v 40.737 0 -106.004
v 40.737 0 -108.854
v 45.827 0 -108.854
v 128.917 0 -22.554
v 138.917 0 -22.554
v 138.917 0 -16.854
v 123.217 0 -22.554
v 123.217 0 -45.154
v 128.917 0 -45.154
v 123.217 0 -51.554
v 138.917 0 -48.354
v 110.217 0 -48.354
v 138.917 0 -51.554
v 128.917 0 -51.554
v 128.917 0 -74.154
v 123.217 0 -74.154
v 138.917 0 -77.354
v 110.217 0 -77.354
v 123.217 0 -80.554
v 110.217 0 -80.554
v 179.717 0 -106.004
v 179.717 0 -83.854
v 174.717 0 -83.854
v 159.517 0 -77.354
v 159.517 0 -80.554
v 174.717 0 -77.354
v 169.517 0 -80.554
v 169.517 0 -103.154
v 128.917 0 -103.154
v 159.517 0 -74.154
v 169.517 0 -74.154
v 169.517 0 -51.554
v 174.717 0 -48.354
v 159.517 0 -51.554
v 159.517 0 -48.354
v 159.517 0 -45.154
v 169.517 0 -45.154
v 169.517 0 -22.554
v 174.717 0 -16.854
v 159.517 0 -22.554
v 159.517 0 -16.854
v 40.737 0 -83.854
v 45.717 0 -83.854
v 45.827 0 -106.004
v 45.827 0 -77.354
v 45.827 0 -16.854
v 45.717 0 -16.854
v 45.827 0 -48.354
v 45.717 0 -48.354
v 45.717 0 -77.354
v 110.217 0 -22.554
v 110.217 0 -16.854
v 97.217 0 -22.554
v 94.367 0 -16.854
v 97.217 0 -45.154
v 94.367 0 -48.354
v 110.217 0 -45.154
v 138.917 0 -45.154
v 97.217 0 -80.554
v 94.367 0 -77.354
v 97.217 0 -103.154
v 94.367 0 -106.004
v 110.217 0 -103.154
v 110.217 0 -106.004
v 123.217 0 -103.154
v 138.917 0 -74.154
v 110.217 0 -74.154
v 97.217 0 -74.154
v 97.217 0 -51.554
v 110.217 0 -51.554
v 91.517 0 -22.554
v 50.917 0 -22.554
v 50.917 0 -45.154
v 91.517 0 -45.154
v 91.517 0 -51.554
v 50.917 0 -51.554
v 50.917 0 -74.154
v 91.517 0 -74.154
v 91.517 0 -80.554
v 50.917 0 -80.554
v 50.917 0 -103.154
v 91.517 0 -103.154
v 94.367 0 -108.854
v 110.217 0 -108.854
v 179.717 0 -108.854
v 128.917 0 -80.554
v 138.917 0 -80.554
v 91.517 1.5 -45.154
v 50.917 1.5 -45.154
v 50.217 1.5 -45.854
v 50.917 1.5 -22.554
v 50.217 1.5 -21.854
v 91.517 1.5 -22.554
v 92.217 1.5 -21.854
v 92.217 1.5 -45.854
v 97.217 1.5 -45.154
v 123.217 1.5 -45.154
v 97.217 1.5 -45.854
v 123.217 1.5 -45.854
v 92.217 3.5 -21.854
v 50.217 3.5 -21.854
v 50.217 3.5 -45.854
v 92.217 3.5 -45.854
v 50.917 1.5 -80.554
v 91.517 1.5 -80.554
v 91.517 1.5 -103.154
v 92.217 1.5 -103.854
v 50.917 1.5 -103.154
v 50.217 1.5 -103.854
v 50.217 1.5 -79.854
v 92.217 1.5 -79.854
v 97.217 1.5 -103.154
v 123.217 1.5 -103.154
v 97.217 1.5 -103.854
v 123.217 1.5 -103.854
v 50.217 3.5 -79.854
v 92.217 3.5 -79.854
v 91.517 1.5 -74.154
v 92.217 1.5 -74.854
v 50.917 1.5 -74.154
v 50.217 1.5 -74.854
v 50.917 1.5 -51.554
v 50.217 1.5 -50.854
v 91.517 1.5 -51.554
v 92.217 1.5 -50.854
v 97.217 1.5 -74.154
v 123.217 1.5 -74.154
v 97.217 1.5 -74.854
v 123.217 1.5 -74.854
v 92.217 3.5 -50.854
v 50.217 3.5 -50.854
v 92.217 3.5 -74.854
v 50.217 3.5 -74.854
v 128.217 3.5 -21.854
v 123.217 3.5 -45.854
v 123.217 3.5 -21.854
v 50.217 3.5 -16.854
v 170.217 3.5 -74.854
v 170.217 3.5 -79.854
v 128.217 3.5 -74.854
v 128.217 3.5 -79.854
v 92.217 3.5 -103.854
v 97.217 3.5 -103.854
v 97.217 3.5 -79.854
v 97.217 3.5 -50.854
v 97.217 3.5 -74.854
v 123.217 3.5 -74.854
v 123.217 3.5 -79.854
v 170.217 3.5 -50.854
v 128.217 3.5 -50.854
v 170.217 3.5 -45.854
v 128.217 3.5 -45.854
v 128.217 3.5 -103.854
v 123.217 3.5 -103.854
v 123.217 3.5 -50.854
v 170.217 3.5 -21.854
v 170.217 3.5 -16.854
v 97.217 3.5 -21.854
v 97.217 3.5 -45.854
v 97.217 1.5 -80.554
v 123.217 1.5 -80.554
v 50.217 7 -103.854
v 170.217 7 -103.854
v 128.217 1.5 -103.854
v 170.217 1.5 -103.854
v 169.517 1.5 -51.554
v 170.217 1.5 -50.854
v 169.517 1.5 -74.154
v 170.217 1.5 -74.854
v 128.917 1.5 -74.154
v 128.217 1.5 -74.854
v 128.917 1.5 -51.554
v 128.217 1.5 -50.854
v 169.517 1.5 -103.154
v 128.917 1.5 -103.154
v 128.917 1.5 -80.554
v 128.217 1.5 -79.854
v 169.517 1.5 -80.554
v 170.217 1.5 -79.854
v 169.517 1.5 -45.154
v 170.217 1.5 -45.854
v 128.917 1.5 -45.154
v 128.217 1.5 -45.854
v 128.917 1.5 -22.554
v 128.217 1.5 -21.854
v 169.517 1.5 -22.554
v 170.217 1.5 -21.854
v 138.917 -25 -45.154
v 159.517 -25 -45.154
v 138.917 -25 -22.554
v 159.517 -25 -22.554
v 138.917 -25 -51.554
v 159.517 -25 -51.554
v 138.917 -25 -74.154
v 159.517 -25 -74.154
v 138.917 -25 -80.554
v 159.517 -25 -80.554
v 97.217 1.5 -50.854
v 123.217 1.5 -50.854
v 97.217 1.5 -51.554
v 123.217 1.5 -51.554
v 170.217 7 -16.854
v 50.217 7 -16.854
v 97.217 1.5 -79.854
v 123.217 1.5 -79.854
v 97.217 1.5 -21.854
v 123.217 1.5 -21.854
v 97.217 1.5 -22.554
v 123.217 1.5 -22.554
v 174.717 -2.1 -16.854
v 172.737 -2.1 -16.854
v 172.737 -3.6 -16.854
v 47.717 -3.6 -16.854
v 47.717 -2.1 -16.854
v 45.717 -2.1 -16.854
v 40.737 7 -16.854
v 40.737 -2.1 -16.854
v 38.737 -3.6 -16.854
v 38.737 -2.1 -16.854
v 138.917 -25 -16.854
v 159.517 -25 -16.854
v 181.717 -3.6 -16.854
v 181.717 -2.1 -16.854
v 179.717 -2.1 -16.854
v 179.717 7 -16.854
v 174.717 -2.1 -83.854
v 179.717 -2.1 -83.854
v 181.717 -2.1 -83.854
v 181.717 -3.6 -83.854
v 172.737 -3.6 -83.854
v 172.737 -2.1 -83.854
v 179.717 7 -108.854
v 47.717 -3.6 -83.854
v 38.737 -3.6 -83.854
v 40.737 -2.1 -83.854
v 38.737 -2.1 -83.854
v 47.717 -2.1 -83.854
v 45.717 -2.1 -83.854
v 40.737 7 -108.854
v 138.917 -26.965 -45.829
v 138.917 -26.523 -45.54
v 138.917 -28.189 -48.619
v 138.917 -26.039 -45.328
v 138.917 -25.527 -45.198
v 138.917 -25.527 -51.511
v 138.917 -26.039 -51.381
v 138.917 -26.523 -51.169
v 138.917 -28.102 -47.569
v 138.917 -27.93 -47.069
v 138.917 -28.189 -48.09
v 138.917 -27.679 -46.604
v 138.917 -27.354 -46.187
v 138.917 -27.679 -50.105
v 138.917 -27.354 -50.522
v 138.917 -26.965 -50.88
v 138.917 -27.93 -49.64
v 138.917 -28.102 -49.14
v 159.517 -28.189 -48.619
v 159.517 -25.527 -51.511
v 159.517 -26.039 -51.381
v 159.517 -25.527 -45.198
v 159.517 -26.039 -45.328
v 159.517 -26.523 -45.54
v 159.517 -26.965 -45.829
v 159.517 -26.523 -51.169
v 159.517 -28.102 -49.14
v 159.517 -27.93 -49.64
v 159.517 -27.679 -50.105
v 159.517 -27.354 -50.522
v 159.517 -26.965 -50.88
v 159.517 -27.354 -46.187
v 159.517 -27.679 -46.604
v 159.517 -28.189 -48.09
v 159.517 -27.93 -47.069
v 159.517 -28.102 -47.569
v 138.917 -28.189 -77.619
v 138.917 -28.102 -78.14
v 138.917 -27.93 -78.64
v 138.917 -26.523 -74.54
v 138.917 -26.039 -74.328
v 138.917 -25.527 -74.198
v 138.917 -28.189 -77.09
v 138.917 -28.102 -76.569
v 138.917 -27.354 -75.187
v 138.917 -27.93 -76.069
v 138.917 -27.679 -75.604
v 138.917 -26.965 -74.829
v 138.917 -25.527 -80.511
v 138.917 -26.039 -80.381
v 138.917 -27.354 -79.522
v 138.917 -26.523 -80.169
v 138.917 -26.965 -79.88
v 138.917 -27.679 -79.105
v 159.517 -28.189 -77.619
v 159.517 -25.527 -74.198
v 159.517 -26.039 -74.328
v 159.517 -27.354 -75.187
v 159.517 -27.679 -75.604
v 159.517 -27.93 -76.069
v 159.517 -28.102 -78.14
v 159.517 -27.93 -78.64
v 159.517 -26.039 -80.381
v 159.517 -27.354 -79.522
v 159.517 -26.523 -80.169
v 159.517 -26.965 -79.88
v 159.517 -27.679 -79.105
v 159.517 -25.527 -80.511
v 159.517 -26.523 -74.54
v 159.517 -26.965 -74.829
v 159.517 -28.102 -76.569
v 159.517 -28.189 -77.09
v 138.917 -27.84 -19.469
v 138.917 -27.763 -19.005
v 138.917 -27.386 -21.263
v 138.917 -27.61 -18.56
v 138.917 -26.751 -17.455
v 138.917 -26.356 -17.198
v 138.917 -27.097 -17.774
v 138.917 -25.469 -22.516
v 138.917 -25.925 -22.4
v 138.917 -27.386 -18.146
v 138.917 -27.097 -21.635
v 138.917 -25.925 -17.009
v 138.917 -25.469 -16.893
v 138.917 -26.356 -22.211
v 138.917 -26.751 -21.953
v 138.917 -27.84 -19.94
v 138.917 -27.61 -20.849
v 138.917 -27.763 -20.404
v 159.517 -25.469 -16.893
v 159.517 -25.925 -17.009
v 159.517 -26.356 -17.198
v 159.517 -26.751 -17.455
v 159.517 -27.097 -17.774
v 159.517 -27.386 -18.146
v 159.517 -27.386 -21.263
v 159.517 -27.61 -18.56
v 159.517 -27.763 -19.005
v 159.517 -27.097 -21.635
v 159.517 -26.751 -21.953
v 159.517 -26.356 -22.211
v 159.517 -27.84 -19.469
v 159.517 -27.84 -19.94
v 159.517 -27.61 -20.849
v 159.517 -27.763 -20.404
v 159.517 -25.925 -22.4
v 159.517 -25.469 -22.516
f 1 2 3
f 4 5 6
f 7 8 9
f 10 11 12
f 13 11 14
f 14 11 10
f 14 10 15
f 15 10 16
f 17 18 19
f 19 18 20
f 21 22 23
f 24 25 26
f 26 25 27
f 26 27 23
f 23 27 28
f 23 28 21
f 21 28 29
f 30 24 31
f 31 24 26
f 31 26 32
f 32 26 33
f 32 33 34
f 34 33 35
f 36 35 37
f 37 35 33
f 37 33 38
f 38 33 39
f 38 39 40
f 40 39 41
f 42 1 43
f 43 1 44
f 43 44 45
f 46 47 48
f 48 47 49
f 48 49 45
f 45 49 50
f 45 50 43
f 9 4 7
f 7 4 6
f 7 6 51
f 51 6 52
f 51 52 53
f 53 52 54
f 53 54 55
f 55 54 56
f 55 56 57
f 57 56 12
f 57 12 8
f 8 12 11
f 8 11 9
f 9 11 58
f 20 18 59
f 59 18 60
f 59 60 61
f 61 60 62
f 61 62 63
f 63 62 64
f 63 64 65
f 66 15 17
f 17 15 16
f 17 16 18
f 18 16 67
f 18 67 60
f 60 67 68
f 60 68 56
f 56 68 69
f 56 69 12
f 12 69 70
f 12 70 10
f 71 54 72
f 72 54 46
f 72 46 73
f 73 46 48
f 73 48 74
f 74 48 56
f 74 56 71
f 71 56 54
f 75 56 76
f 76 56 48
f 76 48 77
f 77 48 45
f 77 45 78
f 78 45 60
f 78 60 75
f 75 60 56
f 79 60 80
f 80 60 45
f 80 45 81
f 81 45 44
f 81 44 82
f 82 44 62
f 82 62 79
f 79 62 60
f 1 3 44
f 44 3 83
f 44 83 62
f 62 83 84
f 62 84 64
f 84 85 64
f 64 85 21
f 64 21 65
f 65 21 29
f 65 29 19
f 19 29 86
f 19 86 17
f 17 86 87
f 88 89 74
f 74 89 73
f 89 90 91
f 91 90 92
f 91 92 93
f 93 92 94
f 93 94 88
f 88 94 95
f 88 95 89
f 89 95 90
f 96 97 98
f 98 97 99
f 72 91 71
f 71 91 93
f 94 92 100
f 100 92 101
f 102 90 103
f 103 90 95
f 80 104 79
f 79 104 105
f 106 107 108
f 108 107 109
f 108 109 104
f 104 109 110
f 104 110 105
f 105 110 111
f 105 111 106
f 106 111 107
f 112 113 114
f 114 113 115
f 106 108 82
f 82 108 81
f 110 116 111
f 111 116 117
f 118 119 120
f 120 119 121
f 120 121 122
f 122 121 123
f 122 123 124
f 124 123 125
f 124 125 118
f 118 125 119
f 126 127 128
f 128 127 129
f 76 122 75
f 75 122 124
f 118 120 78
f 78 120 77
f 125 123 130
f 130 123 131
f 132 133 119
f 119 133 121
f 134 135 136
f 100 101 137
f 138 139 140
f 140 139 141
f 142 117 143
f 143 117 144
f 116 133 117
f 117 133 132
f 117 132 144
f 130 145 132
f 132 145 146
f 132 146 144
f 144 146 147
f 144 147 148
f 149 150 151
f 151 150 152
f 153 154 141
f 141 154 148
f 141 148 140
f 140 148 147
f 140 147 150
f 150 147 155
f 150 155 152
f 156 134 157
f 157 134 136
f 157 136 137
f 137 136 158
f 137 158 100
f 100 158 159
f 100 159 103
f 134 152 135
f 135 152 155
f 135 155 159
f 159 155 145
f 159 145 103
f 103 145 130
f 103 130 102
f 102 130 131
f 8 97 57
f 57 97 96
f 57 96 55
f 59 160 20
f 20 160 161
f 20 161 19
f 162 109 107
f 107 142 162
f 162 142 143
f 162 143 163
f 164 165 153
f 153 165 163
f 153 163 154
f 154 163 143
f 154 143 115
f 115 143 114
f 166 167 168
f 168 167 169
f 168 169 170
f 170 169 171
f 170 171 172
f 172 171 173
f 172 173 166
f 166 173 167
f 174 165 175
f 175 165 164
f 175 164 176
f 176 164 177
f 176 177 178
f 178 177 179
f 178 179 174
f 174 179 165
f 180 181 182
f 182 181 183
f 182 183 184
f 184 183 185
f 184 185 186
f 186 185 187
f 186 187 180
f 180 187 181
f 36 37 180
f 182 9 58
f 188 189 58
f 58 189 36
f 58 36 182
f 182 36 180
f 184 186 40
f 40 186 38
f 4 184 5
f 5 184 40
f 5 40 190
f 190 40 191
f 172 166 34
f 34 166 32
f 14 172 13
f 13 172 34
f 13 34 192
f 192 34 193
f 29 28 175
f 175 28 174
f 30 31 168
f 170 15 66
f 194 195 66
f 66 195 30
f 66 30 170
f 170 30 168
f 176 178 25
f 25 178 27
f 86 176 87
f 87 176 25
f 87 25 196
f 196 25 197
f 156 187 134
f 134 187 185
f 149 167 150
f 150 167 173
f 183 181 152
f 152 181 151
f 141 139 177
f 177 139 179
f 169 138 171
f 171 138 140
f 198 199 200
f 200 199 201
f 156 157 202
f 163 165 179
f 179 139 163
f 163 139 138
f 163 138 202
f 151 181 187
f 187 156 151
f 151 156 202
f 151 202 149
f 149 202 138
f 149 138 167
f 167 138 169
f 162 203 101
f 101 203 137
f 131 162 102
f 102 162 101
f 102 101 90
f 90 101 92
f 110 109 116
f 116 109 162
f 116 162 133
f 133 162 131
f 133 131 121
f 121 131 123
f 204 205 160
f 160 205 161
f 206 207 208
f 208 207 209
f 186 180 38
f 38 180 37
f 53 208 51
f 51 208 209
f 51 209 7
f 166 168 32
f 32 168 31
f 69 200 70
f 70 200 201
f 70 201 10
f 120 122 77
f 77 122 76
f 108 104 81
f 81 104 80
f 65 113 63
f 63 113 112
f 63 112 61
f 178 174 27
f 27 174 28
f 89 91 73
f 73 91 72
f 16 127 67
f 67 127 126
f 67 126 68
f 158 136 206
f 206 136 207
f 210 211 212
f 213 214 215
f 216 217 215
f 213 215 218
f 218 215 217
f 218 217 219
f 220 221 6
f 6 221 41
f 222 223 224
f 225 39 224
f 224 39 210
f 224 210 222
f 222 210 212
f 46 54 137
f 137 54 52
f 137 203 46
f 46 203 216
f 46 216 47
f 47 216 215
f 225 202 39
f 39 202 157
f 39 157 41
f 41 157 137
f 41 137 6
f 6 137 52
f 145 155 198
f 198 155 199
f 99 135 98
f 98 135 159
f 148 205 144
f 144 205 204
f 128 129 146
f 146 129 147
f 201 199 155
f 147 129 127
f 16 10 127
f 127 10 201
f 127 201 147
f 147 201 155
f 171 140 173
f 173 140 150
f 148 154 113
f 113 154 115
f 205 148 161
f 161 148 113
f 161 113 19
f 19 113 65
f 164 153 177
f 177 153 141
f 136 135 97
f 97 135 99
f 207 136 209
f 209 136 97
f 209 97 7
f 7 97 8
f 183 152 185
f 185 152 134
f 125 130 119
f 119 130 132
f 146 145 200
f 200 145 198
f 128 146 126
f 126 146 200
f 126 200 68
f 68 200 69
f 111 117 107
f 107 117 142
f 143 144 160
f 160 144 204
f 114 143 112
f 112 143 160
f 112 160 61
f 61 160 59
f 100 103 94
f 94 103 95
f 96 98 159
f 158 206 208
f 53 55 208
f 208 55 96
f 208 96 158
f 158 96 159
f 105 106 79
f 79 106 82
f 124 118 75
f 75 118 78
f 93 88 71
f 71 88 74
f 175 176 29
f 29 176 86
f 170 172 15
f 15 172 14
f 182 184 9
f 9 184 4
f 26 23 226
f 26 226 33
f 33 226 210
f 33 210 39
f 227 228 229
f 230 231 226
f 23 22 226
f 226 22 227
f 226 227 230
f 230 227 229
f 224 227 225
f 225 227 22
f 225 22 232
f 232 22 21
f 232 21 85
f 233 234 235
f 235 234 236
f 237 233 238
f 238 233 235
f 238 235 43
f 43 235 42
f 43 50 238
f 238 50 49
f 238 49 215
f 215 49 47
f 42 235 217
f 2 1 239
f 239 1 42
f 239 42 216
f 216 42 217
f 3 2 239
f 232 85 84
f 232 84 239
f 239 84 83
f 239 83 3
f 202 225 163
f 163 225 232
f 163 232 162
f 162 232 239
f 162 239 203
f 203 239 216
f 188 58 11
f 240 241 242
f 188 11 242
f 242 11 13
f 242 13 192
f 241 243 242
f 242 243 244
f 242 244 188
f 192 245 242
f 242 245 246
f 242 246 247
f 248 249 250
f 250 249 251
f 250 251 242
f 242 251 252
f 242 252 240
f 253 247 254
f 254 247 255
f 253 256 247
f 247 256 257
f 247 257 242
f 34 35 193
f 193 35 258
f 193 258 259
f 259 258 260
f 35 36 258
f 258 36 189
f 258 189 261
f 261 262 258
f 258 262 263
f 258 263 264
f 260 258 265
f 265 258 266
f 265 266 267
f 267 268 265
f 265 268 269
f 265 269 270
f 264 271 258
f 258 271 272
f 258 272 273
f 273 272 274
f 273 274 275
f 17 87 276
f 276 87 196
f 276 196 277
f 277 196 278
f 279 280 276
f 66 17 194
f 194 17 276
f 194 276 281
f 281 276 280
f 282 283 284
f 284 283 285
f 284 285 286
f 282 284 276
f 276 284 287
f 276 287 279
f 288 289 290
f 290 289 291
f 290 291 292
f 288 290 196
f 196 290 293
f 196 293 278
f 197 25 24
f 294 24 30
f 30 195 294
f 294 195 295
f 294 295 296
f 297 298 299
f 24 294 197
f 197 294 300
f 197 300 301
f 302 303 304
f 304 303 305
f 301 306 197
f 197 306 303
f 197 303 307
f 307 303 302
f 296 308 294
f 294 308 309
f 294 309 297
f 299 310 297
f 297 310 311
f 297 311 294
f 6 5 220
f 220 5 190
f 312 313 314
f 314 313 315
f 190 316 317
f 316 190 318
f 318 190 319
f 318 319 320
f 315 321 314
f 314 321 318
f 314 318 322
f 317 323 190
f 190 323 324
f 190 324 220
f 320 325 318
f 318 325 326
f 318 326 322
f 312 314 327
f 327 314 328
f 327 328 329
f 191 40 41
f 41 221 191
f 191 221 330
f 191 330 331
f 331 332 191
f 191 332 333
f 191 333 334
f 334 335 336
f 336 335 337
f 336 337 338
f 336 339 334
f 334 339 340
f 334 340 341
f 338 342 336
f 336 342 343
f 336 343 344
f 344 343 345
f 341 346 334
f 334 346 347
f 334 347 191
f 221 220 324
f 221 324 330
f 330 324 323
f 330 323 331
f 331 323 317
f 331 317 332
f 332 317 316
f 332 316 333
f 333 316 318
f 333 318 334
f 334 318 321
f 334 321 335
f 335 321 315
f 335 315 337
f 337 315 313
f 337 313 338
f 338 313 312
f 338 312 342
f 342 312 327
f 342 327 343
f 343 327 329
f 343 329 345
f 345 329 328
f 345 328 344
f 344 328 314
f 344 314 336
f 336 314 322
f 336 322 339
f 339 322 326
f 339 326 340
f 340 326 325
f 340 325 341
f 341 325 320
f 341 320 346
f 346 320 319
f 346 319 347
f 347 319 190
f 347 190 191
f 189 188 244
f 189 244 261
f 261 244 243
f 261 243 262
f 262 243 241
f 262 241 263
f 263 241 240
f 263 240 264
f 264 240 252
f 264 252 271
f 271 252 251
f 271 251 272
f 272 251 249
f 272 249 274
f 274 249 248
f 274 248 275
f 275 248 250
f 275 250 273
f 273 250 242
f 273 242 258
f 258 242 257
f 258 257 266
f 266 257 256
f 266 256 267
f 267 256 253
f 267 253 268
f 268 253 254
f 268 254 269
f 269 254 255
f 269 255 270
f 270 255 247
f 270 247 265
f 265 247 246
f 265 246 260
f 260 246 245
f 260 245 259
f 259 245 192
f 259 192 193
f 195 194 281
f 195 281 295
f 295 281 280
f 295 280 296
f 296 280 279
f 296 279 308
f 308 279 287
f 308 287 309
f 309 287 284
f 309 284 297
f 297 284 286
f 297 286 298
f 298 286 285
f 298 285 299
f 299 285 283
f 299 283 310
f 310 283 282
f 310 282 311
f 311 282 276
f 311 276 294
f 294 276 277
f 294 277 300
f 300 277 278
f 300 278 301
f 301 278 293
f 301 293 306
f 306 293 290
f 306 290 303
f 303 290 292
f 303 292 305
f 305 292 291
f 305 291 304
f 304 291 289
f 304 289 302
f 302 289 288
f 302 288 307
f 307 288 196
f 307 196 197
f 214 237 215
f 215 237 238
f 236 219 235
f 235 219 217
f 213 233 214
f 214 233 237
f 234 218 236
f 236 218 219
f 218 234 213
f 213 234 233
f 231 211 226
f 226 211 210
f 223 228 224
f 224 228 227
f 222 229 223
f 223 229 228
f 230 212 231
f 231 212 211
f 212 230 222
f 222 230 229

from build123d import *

# Parameters (mm, degrees)
SKETCH1_W            = 148
SKETCH1_H            = 130
SKETCH1_W_2          = 120
SKETCH1_H_2          = 110
BOSS_EXTRUDE2_DEPTH  = 10
SKETCH2_W            = 120
SKETCH2_H            = 24
SKETCH2_W_2          = 118.6
SKETCH2_H_2          = 22.6
SKETCH2_H_3          = 23
SKETCH2_H_4          = 21.6
SKETCH2_H_5          = 5
BOSS_EXTRUDE3_DEPTH  = 1.5
SKETCH3_W            = 120
SKETCH3_H            = 5
BOSS_EXTRUDE4_DEPTH  = 2
SKETCH4_W            = 5
SKETCH4_H            = 110
BOSS_EXTRUDE5_DEPTH  = 3.5
SKETCH5_W            = 5
SKETCH5_H            = 22.6
SKETCH5_H_2          = 21.6
CUT_EXTRUDE1_DEPTH   = 10
SKETCH6_W            = 5
SKETCH6_H            = 0.7
CUT_EXTRUDE2_DEPTH   = 2
SKETCH7_W            = 5
SKETCH7_H            = 24
BOSS_EXTRUDE7_DEPTH  = 3.5
SKETCH8_W            = 0.7
SKETCH8_H            = 22.6
BOSS_EXTRUDE8_DEPTH  = 1.5
SKETCH9_W            = 26
SKETCH9_H            = 0.7
CUT_EXTRUDE3_DEPTH   = 1.5
SKETCH10_W           = 0.7
SKETCH10_H           = 22.6
BOSS_EXTRUDE9_DEPTH  = 1.5
SKETCH11_W           = 5
SKETCH11_H           = 70
BOSS_EXTRUDE10_DEPTH = 3
SKETCH12_W           = 4.519389616
SKETCH12_H           = 130
SKETCH12_W_2         = 4.5
CUT_EXTRUDE4_DEPTH   = 20
SKETCH13_W           = 138.980610384
SKETCH13_H           = 30
SKETCH13_H_2         = 5
CUT_EXTRUDE5_DEPTH   = 20
SKETCH14_W           = 138.980610384
SKETCH14_H           = 3
CUT_EXTRUDE6_DEPTH   = 20
SKETCH15_W           = 4.980610384
SKETCH15_H           = 3
SKETCH15_W_2         = 5
CUT_EXTRUDE7_DEPTH   = 20
SKETCH16_W           = 138.980610384
SKETCH16_H           = 3
CUT_EXTRUDE8_DEPTH   = 200
SKETCH17_W           = 20.6
SKETCH17_H           = 6.4
SKETCH17_H_2         = 5.7
BOSS_EXTRUDE11_DEPTH = 10
BOSS_EXTRUDE12_DEPTH = 20.6
BOSS_EXTRUDE13_DEPTH = 20.6
SKETCH20_W           = 5
SKETCH20_H           = 67
SKETCH20_W_2         = 4.980610384
CUT_EXTRUDE9_DEPTH   = 0.9
SKETCH21_W           = 8.980610384
SKETCH21_H           = 67
BOSS_EXTRUDE14_DEPTH = 1.5


with BuildPart() as part:
    # Sketch1 → Boss-Extrude2 (new body)
    with BuildSketch(Plane(origin=(0, 0, 0), x_dir=(1, 0, 0), z_dir=(0, 1, 0))):
        with Locations((110.217300352, 48.854396258)):
            Rectangle(SKETCH1_W, SKETCH1_H)
        with Locations((110.217300352, 48.854396258)):
            Rectangle(SKETCH1_W_2, SKETCH1_H_2, mode=Mode.SUBTRACT)
    extrude(amount=BOSS_EXTRUDE2_DEPTH)

    # Sketch2 → Boss-Extrude3 (add)
    with BuildSketch(Plane.XZ):
        with Locations((110.217300352, -91.854396258)):
            Rectangle(SKETCH2_W, SKETCH2_H)
        with Locations((110.217300352, -91.854396258)):
            Rectangle(SKETCH2_W_2, SKETCH2_H_2, mode=Mode.SUBTRACT)
        with Locations((110.217300352, -62.854396258)):
            Rectangle(SKETCH2_W, SKETCH2_H)
        with Locations((110.217300352, -62.854396258)):
            Rectangle(SKETCH2_W_2, SKETCH2_H_2, mode=Mode.SUBTRACT)
        with Locations((110.217300352, -33.854396258)):
            Rectangle(SKETCH2_W, SKETCH2_H)
        with Locations((110.217300352, -33.854396258)):
            Rectangle(SKETCH2_W_2, SKETCH2_H_2, mode=Mode.SUBTRACT)
        with Locations((110.217300352, -5.354396258)):
            Rectangle(SKETCH2_W, SKETCH2_H_3)
        with Locations((110.217300352, -5.354396258)):
            Rectangle(SKETCH2_W_2, SKETCH2_H_4, mode=Mode.SUBTRACT)
        with Locations((110.217300352, -19.354396258)):
            Rectangle(SKETCH2_W, SKETCH2_H_5)
        with Locations((110.217300352, -48.354396258)):
            Rectangle(SKETCH2_W, SKETCH2_H_5)
        with Locations((110.217300352, -77.354396258)):
            Rectangle(SKETCH2_W, SKETCH2_H_5)
    extrude(amount=-BOSS_EXTRUDE3_DEPTH)

    # Sketch3 → Boss-Extrude4 (add)
    with BuildSketch(Plane(origin=(0, 1.5, 0), x_dir=(1, 0, 0), z_dir=(0, 1, 0))):
        with Locations((110.217300352, 77.354396258)):
            Rectangle(SKETCH3_W, SKETCH3_H)
        with Locations((110.217300352, 48.354396258)):
            Rectangle(SKETCH3_W, SKETCH3_H)
        with Locations((110.217300352, 19.354396258)):
            Rectangle(SKETCH3_W, SKETCH3_H)
    extrude(amount=BOSS_EXTRUDE4_DEPTH)

    # Sketch4 → Boss-Extrude5 (add)
    with BuildSketch(Plane(origin=(0, 0, 0), x_dir=(-1, 0, 0), z_dir=(0, -1, 0))):
        with Locations((-89.717300352, 48.854396258)):
            Rectangle(SKETCH4_W, SKETCH4_H)
        with Locations((-125.717300352, 48.854396258)):
            Rectangle(SKETCH4_W, SKETCH4_H)
    extrude(amount=-BOSS_EXTRUDE5_DEPTH)

    # Sketch5 → Cut-Extrude1 (cut)
    with BuildSketch(Plane(origin=(0, 0, 0), x_dir=(-1, 0, 0), z_dir=(0, -1, 0))):
        with Locations((-89.717300352, 91.854396258)):
            Rectangle(SKETCH5_W, SKETCH5_H)
        with Locations((-89.717300352, 5.354396258)):
            Rectangle(SKETCH5_W, SKETCH5_H_2)
        with Locations((-89.717300352, 33.854396258)):
            Rectangle(SKETCH5_W, SKETCH5_H)
        with Locations((-89.717300352, 62.854396258)):
            Rectangle(SKETCH5_W, SKETCH5_H)
    extrude(amount=-CUT_EXTRUDE1_DEPTH, mode=Mode.SUBTRACT)

    # Sketch6 → Cut-Extrude2 (cut)
    with BuildSketch(Plane(origin=(0, 1.5, 0), x_dir=(1, 0, 0), z_dir=(0, 1, 0))):
        with Locations((89.717300352, 103.504396258)):
            Rectangle(SKETCH6_W, SKETCH6_H)
        with Locations((89.717300352, 80.204396258)):
            Rectangle(SKETCH6_W, SKETCH6_H)
        with Locations((89.717300352, 74.504396258)):
            Rectangle(SKETCH6_W, SKETCH6_H)
        with Locations((89.717300352, 51.204396258)):
            Rectangle(SKETCH6_W, SKETCH6_H)
        with Locations((89.717300352, 45.504396258)):
            Rectangle(SKETCH6_W, SKETCH6_H)
        with Locations((89.717300352, 22.204396258)):
            Rectangle(SKETCH6_W, SKETCH6_H)
        with Locations((89.717300352, 16.504396258)):
            Rectangle(SKETCH6_W, SKETCH6_H)
        with Locations((89.717300352, -5.795603742)):
            Rectangle(SKETCH6_W, SKETCH6_H)
    extrude(amount=CUT_EXTRUDE2_DEPTH, mode=Mode.SUBTRACT)

    # Sketch7 → Boss-Extrude7 (add)
    with BuildSketch(Plane(origin=(0, 0, 0), x_dir=(-1, 0, 0), z_dir=(0, -1, 0))):
        with Locations((-94.717300352, 91.854396258)):
            Rectangle(SKETCH7_W, SKETCH7_H)
        with Locations((-94.717300352, 62.854396258)):
            Rectangle(SKETCH7_W, SKETCH7_H)
        Polygon((-97.217300352, 16.854396258), (-97.217300352, -6.145603742), (-92.217300352, -6.170565448), (-92.217300352, 16.854396258), align=None)
        with Locations((-94.717300352, 33.854396258)):
            Rectangle(SKETCH7_W, SKETCH7_H)
    extrude(amount=-BOSS_EXTRUDE7_DEPTH)

    # Sketch8 → Boss-Extrude8 (add)
    with BuildSketch(Plane(origin=(0, 0, 0), x_dir=(-1, 0, 0), z_dir=(0, -1, 0))):
        with Locations((-91.867300352, 91.854396258)):
            Rectangle(SKETCH8_W, SKETCH8_H)
        with Locations((-91.867300352, 62.854396258)):
            Rectangle(SKETCH8_W, SKETCH8_H)
        with Locations((-91.867300352, 33.854396258)):
            Rectangle(SKETCH8_W, SKETCH8_H)
    extrude(amount=-BOSS_EXTRUDE8_DEPTH)

    # Sketch9 → Cut-Extrude3 (cut)
    with BuildSketch(Plane(origin=(0, 0, 0), x_dir=(-1, 0, 0), z_dir=(0, -1, 0))):
        Polygon((-50.217300352, 16.854396258), (-92.217300352, 16.854396258), (-92.217300352, 16.154396258), (-50.917300352, 16.154396258), (-50.917300352, -5.445603742), (-92.217300352, -5.445603742), (-92.217300352, -6.145603742), (-50.217300352, -6.145603742), align=None)
        Polygon((-170.217300352, -6.145603742), (-128.217300352, -6.145603742), (-128.217300352, -5.445603742), (-169.517300352, -5.445603742), (-169.517300352, 16.154396258), (-128.217300352, 16.154396258), (-128.217300352, 16.854396258), (-170.217300352, 16.854396258), align=None)
        with Locations((-110.217300352, 16.504396258)):
            Rectangle(SKETCH9_W, SKETCH9_H)
        with Locations((-110.217300352, -5.795603742)):
            Rectangle(SKETCH9_W, SKETCH9_H)
    extrude(amount=-CUT_EXTRUDE3_DEPTH, mode=Mode.SUBTRACT)

    # Sketch10 → Boss-Extrude9 (add)
    with BuildSketch(Plane(origin=(0, 0, 0), x_dir=(-1, 0, 0), z_dir=(0, -1, 0))):
        with Locations((-128.567300352, 91.854396258)):
            Rectangle(SKETCH10_W, SKETCH10_H)
        with Locations((-128.567300352, 62.854396258)):
            Rectangle(SKETCH10_W, SKETCH10_H)
        with Locations((-128.567300352, 33.854396258)):
            Rectangle(SKETCH10_W, SKETCH10_H)
    extrude(amount=-BOSS_EXTRUDE9_DEPTH)

    # Sketch11 → Boss-Extrude10 (add)
    with BuildSketch(Plane(origin=(0, 0, 0), x_dir=(-1, 0, 0), z_dir=(0, -1, 0))):
        with Locations((-43.217300352, 48.854396258)):
            Rectangle(SKETCH11_W, SKETCH11_H)
        with Locations((-177.217300352, 48.854396258)):
            Rectangle(SKETCH11_W, SKETCH11_H)
    extrude(amount=BOSS_EXTRUDE10_DEPTH)

    # Sketch12 → Cut-Extrude4 (cut)
    with BuildSketch(Plane(origin=(0, 10, 0), x_dir=(1, 0, 0), z_dir=(0, 1, 0))):
        with Locations((38.47699516, 48.854396258)):
            Rectangle(SKETCH12_W, SKETCH12_H)
        with Locations((181.967300352, 48.854396258)):
            Rectangle(SKETCH12_W_2, SKETCH12_H)
    extrude(amount=-CUT_EXTRUDE4_DEPTH, mode=Mode.SUBTRACT)

    # Sketch13 → Cut-Extrude5 (cut)
    with BuildSketch(Plane(origin=(0, 0, 0), x_dir=(-1, 0, 0), z_dir=(0, -1, 0))):
        with Locations((-110.22699516, -1.145603742)):
            Rectangle(SKETCH13_W, SKETCH13_H)
        with Locations((-110.22699516, 111.354396258)):
            Rectangle(SKETCH13_W, SKETCH13_H_2)
    extrude(amount=-CUT_EXTRUDE5_DEPTH, mode=Mode.SUBTRACT)

    # Sketch14 → Cut-Extrude6 (cut)
    with BuildSketch(Plane(origin=(0, 0, 0), x_dir=(-1, 0, 0), z_dir=(0, -1, 0))):
        with Locations((-110.22699516, 15.354396258)):
            Rectangle(SKETCH14_W, SKETCH14_H)
    extrude(amount=-CUT_EXTRUDE6_DEPTH, mode=Mode.SUBTRACT)

    # Sketch15 → Cut-Extrude7 (cut)
    with BuildSketch(Plane(origin=(0, -3, 0), x_dir=(-1, 0, 0), z_dir=(0, -1, 0))):
        with Locations((-43.22699516, 15.354396258)):
            Rectangle(SKETCH15_W, SKETCH15_H)
        with Locations((-177.217300352, 15.354396258)):
            Rectangle(SKETCH15_W_2, SKETCH15_H)
    extrude(amount=-CUT_EXTRUDE7_DEPTH, mode=Mode.SUBTRACT)

    # Sketch16 → Cut-Extrude8 (cut)
    with BuildSketch(Plane.XY.offset(-16.854396258)):
        with Locations((110.22699516, 8.5)):
            Rectangle(SKETCH16_W, SKETCH16_H)
    extrude(amount=-CUT_EXTRUDE8_DEPTH, mode=Mode.SUBTRACT)

    # Sketch17 → Boss-Extrude11 (add)
    with BuildSketch(Plane(origin=(0, 0, 0), x_dir=(-1, 0, 0), z_dir=(0, -1, 0))):
        with Locations((-149.217300352, 77.354396258)):
            Rectangle(SKETCH17_W, SKETCH17_H)
        with Locations((-149.217300352, 48.354396258)):
            Rectangle(SKETCH17_W, SKETCH17_H)
        with Locations((-149.217300352, 19.704396258)):
            Rectangle(SKETCH17_W, SKETCH17_H_2)
    extrude(amount=BOSS_EXTRUDE11_DEPTH)

    # Sketch18 → Boss-Extrude12 (add)
    with BuildSketch(Plane.ZY.offset(-138.917300352)):
        with BuildLine():
            Line((-22.554396258, -10), (-16.854396258, -10))
            ThreePointArc((-16.854396258, -10), (-19.704396258, -12.85), (-22.554396258, -10))
        make_face()
        with BuildLine():
            Line((-45.154396258, -10), (-51.554396258, -10))
            ThreePointArc((-51.554396258, -10), (-48.354396258, -13.2), (-45.154396258, -10))
        make_face()
        with BuildLine():
            Line((-74.154396258, -10), (-80.554396258, -10))
            ThreePointArc((-80.554396258, -10), (-77.354396258, -13.2), (-74.154396258, -10))
        make_face()
    extrude(amount=-BOSS_EXTRUDE12_DEPTH)

    # Sketch19 → Boss-Extrude13 (add)
    with BuildSketch(Plane.ZY.offset(-138.917300352)):
        with BuildLine():
            Line((-16.854396258, -10), (-16.854396258, -25))
            ThreePointArc((-16.854396258, -25), (-19.704396258, -27.85), (-22.554396258, -25))
            Line((-22.554396258, -25), (-22.554396258, -10))
            ThreePointArc((-22.554396258, -10), (-19.704396258, -12.85), (-16.854396258, -10))
        make_face()
        with BuildLine():
            Line((-45.154396258, -10), (-45.154396258, -25))
            ThreePointArc((-45.154396258, -25), (-48.354396258, -28.2), (-51.554396258, -25))
            Line((-51.554396258, -25), (-51.554396258, -10))
            Line((-51.554396258, -10), (-45.154396258, -10))
        make_face()
        with BuildLine():
            Line((-74.154396258, -10), (-74.154396258, -25))
            ThreePointArc((-74.154396258, -25), (-77.354396258, -28.2), (-80.554396258, -25))
            Line((-80.554396258, -25), (-80.554396258, -10))
            Line((-80.554396258, -10), (-74.154396258, -10))
        make_face()
    extrude(amount=-BOSS_EXTRUDE13_DEPTH)

    # Sketch20 → Cut-Extrude9 (cut)
    with BuildSketch(Plane(origin=(0, -3, 0), x_dir=(-1, 0, 0), z_dir=(0, -1, 0))):
        with Locations((-177.217300352, 50.354396258)):
            Rectangle(SKETCH20_W, SKETCH20_H)
        with Locations((-43.22699516, 50.354396258)):
            Rectangle(SKETCH20_W_2, SKETCH20_H)
    extrude(amount=-CUT_EXTRUDE9_DEPTH, mode=Mode.SUBTRACT)

    # Sketch21 → Boss-Extrude14 (add)
    with BuildSketch(Plane(origin=(0, -2.1, 0), x_dir=(-1, 0, 0), z_dir=(0, -1, 0))):
        with Locations((-43.22699516, 50.354396258)):
            Rectangle(SKETCH21_W, SKETCH21_H)
        with Locations((-177.22699516, 50.354396258)):
            Rectangle(SKETCH21_W, SKETCH21_H)
    extrude(amount=BOSS_EXTRUDE14_DEPTH)


solid = part.part
